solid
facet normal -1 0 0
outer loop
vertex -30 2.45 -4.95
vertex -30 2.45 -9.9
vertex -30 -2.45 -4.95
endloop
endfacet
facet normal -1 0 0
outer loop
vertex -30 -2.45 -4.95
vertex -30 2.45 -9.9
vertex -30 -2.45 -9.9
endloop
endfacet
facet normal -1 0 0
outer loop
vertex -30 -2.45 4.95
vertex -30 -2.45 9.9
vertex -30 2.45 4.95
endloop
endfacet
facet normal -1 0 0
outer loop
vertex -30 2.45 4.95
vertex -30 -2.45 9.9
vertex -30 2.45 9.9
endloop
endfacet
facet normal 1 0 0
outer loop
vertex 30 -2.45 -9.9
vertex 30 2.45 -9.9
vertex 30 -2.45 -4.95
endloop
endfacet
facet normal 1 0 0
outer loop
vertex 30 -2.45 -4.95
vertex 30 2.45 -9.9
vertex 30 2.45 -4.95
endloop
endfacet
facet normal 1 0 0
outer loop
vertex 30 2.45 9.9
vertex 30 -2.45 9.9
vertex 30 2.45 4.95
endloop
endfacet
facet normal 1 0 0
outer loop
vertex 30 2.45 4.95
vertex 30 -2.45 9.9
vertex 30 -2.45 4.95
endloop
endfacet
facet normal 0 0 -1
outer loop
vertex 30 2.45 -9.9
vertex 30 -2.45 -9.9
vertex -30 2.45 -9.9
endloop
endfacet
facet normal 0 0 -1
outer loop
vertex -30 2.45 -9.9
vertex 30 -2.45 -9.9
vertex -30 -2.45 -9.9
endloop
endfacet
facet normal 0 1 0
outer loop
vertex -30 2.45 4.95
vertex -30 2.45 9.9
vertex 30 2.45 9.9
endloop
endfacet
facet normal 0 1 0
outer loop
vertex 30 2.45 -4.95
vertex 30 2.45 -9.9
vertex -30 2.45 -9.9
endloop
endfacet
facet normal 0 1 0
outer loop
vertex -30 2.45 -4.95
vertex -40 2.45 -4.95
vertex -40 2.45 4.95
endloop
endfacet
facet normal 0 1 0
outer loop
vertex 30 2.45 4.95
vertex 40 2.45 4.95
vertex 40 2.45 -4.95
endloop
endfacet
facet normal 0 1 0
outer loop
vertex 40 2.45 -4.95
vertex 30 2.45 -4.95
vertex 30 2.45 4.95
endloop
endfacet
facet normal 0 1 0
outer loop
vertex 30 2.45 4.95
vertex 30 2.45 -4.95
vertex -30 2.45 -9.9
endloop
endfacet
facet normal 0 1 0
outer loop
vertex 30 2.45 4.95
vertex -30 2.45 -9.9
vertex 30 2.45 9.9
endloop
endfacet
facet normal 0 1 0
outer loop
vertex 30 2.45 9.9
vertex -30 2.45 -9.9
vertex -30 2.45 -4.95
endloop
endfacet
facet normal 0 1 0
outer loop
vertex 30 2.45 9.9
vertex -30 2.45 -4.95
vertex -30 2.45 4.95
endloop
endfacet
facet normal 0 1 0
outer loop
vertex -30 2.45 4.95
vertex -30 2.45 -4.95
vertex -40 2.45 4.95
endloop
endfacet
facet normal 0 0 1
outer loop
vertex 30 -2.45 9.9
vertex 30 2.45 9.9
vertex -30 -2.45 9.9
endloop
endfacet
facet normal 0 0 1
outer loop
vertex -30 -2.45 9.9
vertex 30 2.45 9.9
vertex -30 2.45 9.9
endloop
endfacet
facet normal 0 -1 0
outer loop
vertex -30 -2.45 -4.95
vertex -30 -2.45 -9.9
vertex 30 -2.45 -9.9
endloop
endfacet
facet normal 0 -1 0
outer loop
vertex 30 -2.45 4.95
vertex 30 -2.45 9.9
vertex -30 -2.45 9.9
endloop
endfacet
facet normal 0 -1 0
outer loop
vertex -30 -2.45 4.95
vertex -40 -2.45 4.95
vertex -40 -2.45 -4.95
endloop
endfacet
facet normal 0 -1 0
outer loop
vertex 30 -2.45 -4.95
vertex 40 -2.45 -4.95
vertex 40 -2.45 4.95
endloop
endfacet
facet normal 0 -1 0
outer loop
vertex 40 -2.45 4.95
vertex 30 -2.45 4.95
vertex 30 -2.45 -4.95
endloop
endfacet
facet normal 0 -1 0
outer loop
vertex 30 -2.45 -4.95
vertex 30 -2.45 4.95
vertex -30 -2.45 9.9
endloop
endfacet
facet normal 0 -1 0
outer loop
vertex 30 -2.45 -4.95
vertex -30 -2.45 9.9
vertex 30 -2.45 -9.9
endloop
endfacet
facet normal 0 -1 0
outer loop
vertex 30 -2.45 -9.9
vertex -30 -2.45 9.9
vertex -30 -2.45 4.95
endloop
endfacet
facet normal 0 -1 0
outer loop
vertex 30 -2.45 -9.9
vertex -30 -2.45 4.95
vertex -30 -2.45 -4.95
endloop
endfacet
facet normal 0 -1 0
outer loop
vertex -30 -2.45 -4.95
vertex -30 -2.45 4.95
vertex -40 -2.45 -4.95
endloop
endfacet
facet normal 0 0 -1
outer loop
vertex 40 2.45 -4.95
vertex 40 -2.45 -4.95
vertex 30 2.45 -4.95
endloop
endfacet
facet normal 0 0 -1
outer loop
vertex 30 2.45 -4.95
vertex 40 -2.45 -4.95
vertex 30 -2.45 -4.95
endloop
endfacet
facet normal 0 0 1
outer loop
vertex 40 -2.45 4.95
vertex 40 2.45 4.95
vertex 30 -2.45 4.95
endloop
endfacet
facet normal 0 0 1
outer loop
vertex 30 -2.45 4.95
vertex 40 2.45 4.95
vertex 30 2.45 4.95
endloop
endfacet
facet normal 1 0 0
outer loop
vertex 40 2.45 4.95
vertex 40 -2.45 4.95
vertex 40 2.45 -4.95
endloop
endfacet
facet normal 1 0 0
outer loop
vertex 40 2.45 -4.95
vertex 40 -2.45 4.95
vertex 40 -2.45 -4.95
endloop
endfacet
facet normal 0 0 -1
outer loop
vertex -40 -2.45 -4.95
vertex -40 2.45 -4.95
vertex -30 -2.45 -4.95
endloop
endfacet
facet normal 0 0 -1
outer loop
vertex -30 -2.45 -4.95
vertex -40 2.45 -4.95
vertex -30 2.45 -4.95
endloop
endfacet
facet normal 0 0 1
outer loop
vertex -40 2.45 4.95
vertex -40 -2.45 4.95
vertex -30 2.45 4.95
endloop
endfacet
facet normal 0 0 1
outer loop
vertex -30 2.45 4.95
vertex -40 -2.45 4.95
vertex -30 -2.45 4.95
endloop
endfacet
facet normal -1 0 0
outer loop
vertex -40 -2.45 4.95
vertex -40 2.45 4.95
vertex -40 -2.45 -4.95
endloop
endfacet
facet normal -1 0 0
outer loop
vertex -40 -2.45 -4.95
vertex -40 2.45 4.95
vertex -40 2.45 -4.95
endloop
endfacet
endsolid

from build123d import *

# Parameters (mm, degrees)
SKETCH1_W           = 19.8
SKETCH1_H           = 4.9
BOSS_EXTRUDE1_DEPTH = 30
SKETCH2_W           = 9.9
SKETCH2_H           = 4.9
BOSS_EXTRUDE2_DEPTH = 10


with BuildPart() as part:
    # Sketch1 → Boss-Extrude1 (new, symmetric)
    with BuildSketch(Plane(origin=(0, 0, 0), x_dir=(0, 0, -1), z_dir=(1, 0, 0))):
        Rectangle(SKETCH1_W, SKETCH1_H)
    extrude(amount=BOSS_EXTRUDE1_DEPTH, both=True)

    # Sketch2 → Boss-Extrude2 (add)
    with BuildSketch(Plane(origin=(30, 0, 0), x_dir=(0, 0, -1), z_dir=(1, 0, 0))):
        Rectangle(SKETCH2_W, SKETCH2_H)
    boss_extrude2 = extrude(amount=BOSS_EXTRUDE2_DEPTH)

    # Mirror1: Boss-Extrude2 across plane
    add(boss_extrude2.mirror(Plane(origin=(0, 0, 0), x_dir=(0, 0, 1), z_dir=(1, 0, 0))))


solid = part.part
